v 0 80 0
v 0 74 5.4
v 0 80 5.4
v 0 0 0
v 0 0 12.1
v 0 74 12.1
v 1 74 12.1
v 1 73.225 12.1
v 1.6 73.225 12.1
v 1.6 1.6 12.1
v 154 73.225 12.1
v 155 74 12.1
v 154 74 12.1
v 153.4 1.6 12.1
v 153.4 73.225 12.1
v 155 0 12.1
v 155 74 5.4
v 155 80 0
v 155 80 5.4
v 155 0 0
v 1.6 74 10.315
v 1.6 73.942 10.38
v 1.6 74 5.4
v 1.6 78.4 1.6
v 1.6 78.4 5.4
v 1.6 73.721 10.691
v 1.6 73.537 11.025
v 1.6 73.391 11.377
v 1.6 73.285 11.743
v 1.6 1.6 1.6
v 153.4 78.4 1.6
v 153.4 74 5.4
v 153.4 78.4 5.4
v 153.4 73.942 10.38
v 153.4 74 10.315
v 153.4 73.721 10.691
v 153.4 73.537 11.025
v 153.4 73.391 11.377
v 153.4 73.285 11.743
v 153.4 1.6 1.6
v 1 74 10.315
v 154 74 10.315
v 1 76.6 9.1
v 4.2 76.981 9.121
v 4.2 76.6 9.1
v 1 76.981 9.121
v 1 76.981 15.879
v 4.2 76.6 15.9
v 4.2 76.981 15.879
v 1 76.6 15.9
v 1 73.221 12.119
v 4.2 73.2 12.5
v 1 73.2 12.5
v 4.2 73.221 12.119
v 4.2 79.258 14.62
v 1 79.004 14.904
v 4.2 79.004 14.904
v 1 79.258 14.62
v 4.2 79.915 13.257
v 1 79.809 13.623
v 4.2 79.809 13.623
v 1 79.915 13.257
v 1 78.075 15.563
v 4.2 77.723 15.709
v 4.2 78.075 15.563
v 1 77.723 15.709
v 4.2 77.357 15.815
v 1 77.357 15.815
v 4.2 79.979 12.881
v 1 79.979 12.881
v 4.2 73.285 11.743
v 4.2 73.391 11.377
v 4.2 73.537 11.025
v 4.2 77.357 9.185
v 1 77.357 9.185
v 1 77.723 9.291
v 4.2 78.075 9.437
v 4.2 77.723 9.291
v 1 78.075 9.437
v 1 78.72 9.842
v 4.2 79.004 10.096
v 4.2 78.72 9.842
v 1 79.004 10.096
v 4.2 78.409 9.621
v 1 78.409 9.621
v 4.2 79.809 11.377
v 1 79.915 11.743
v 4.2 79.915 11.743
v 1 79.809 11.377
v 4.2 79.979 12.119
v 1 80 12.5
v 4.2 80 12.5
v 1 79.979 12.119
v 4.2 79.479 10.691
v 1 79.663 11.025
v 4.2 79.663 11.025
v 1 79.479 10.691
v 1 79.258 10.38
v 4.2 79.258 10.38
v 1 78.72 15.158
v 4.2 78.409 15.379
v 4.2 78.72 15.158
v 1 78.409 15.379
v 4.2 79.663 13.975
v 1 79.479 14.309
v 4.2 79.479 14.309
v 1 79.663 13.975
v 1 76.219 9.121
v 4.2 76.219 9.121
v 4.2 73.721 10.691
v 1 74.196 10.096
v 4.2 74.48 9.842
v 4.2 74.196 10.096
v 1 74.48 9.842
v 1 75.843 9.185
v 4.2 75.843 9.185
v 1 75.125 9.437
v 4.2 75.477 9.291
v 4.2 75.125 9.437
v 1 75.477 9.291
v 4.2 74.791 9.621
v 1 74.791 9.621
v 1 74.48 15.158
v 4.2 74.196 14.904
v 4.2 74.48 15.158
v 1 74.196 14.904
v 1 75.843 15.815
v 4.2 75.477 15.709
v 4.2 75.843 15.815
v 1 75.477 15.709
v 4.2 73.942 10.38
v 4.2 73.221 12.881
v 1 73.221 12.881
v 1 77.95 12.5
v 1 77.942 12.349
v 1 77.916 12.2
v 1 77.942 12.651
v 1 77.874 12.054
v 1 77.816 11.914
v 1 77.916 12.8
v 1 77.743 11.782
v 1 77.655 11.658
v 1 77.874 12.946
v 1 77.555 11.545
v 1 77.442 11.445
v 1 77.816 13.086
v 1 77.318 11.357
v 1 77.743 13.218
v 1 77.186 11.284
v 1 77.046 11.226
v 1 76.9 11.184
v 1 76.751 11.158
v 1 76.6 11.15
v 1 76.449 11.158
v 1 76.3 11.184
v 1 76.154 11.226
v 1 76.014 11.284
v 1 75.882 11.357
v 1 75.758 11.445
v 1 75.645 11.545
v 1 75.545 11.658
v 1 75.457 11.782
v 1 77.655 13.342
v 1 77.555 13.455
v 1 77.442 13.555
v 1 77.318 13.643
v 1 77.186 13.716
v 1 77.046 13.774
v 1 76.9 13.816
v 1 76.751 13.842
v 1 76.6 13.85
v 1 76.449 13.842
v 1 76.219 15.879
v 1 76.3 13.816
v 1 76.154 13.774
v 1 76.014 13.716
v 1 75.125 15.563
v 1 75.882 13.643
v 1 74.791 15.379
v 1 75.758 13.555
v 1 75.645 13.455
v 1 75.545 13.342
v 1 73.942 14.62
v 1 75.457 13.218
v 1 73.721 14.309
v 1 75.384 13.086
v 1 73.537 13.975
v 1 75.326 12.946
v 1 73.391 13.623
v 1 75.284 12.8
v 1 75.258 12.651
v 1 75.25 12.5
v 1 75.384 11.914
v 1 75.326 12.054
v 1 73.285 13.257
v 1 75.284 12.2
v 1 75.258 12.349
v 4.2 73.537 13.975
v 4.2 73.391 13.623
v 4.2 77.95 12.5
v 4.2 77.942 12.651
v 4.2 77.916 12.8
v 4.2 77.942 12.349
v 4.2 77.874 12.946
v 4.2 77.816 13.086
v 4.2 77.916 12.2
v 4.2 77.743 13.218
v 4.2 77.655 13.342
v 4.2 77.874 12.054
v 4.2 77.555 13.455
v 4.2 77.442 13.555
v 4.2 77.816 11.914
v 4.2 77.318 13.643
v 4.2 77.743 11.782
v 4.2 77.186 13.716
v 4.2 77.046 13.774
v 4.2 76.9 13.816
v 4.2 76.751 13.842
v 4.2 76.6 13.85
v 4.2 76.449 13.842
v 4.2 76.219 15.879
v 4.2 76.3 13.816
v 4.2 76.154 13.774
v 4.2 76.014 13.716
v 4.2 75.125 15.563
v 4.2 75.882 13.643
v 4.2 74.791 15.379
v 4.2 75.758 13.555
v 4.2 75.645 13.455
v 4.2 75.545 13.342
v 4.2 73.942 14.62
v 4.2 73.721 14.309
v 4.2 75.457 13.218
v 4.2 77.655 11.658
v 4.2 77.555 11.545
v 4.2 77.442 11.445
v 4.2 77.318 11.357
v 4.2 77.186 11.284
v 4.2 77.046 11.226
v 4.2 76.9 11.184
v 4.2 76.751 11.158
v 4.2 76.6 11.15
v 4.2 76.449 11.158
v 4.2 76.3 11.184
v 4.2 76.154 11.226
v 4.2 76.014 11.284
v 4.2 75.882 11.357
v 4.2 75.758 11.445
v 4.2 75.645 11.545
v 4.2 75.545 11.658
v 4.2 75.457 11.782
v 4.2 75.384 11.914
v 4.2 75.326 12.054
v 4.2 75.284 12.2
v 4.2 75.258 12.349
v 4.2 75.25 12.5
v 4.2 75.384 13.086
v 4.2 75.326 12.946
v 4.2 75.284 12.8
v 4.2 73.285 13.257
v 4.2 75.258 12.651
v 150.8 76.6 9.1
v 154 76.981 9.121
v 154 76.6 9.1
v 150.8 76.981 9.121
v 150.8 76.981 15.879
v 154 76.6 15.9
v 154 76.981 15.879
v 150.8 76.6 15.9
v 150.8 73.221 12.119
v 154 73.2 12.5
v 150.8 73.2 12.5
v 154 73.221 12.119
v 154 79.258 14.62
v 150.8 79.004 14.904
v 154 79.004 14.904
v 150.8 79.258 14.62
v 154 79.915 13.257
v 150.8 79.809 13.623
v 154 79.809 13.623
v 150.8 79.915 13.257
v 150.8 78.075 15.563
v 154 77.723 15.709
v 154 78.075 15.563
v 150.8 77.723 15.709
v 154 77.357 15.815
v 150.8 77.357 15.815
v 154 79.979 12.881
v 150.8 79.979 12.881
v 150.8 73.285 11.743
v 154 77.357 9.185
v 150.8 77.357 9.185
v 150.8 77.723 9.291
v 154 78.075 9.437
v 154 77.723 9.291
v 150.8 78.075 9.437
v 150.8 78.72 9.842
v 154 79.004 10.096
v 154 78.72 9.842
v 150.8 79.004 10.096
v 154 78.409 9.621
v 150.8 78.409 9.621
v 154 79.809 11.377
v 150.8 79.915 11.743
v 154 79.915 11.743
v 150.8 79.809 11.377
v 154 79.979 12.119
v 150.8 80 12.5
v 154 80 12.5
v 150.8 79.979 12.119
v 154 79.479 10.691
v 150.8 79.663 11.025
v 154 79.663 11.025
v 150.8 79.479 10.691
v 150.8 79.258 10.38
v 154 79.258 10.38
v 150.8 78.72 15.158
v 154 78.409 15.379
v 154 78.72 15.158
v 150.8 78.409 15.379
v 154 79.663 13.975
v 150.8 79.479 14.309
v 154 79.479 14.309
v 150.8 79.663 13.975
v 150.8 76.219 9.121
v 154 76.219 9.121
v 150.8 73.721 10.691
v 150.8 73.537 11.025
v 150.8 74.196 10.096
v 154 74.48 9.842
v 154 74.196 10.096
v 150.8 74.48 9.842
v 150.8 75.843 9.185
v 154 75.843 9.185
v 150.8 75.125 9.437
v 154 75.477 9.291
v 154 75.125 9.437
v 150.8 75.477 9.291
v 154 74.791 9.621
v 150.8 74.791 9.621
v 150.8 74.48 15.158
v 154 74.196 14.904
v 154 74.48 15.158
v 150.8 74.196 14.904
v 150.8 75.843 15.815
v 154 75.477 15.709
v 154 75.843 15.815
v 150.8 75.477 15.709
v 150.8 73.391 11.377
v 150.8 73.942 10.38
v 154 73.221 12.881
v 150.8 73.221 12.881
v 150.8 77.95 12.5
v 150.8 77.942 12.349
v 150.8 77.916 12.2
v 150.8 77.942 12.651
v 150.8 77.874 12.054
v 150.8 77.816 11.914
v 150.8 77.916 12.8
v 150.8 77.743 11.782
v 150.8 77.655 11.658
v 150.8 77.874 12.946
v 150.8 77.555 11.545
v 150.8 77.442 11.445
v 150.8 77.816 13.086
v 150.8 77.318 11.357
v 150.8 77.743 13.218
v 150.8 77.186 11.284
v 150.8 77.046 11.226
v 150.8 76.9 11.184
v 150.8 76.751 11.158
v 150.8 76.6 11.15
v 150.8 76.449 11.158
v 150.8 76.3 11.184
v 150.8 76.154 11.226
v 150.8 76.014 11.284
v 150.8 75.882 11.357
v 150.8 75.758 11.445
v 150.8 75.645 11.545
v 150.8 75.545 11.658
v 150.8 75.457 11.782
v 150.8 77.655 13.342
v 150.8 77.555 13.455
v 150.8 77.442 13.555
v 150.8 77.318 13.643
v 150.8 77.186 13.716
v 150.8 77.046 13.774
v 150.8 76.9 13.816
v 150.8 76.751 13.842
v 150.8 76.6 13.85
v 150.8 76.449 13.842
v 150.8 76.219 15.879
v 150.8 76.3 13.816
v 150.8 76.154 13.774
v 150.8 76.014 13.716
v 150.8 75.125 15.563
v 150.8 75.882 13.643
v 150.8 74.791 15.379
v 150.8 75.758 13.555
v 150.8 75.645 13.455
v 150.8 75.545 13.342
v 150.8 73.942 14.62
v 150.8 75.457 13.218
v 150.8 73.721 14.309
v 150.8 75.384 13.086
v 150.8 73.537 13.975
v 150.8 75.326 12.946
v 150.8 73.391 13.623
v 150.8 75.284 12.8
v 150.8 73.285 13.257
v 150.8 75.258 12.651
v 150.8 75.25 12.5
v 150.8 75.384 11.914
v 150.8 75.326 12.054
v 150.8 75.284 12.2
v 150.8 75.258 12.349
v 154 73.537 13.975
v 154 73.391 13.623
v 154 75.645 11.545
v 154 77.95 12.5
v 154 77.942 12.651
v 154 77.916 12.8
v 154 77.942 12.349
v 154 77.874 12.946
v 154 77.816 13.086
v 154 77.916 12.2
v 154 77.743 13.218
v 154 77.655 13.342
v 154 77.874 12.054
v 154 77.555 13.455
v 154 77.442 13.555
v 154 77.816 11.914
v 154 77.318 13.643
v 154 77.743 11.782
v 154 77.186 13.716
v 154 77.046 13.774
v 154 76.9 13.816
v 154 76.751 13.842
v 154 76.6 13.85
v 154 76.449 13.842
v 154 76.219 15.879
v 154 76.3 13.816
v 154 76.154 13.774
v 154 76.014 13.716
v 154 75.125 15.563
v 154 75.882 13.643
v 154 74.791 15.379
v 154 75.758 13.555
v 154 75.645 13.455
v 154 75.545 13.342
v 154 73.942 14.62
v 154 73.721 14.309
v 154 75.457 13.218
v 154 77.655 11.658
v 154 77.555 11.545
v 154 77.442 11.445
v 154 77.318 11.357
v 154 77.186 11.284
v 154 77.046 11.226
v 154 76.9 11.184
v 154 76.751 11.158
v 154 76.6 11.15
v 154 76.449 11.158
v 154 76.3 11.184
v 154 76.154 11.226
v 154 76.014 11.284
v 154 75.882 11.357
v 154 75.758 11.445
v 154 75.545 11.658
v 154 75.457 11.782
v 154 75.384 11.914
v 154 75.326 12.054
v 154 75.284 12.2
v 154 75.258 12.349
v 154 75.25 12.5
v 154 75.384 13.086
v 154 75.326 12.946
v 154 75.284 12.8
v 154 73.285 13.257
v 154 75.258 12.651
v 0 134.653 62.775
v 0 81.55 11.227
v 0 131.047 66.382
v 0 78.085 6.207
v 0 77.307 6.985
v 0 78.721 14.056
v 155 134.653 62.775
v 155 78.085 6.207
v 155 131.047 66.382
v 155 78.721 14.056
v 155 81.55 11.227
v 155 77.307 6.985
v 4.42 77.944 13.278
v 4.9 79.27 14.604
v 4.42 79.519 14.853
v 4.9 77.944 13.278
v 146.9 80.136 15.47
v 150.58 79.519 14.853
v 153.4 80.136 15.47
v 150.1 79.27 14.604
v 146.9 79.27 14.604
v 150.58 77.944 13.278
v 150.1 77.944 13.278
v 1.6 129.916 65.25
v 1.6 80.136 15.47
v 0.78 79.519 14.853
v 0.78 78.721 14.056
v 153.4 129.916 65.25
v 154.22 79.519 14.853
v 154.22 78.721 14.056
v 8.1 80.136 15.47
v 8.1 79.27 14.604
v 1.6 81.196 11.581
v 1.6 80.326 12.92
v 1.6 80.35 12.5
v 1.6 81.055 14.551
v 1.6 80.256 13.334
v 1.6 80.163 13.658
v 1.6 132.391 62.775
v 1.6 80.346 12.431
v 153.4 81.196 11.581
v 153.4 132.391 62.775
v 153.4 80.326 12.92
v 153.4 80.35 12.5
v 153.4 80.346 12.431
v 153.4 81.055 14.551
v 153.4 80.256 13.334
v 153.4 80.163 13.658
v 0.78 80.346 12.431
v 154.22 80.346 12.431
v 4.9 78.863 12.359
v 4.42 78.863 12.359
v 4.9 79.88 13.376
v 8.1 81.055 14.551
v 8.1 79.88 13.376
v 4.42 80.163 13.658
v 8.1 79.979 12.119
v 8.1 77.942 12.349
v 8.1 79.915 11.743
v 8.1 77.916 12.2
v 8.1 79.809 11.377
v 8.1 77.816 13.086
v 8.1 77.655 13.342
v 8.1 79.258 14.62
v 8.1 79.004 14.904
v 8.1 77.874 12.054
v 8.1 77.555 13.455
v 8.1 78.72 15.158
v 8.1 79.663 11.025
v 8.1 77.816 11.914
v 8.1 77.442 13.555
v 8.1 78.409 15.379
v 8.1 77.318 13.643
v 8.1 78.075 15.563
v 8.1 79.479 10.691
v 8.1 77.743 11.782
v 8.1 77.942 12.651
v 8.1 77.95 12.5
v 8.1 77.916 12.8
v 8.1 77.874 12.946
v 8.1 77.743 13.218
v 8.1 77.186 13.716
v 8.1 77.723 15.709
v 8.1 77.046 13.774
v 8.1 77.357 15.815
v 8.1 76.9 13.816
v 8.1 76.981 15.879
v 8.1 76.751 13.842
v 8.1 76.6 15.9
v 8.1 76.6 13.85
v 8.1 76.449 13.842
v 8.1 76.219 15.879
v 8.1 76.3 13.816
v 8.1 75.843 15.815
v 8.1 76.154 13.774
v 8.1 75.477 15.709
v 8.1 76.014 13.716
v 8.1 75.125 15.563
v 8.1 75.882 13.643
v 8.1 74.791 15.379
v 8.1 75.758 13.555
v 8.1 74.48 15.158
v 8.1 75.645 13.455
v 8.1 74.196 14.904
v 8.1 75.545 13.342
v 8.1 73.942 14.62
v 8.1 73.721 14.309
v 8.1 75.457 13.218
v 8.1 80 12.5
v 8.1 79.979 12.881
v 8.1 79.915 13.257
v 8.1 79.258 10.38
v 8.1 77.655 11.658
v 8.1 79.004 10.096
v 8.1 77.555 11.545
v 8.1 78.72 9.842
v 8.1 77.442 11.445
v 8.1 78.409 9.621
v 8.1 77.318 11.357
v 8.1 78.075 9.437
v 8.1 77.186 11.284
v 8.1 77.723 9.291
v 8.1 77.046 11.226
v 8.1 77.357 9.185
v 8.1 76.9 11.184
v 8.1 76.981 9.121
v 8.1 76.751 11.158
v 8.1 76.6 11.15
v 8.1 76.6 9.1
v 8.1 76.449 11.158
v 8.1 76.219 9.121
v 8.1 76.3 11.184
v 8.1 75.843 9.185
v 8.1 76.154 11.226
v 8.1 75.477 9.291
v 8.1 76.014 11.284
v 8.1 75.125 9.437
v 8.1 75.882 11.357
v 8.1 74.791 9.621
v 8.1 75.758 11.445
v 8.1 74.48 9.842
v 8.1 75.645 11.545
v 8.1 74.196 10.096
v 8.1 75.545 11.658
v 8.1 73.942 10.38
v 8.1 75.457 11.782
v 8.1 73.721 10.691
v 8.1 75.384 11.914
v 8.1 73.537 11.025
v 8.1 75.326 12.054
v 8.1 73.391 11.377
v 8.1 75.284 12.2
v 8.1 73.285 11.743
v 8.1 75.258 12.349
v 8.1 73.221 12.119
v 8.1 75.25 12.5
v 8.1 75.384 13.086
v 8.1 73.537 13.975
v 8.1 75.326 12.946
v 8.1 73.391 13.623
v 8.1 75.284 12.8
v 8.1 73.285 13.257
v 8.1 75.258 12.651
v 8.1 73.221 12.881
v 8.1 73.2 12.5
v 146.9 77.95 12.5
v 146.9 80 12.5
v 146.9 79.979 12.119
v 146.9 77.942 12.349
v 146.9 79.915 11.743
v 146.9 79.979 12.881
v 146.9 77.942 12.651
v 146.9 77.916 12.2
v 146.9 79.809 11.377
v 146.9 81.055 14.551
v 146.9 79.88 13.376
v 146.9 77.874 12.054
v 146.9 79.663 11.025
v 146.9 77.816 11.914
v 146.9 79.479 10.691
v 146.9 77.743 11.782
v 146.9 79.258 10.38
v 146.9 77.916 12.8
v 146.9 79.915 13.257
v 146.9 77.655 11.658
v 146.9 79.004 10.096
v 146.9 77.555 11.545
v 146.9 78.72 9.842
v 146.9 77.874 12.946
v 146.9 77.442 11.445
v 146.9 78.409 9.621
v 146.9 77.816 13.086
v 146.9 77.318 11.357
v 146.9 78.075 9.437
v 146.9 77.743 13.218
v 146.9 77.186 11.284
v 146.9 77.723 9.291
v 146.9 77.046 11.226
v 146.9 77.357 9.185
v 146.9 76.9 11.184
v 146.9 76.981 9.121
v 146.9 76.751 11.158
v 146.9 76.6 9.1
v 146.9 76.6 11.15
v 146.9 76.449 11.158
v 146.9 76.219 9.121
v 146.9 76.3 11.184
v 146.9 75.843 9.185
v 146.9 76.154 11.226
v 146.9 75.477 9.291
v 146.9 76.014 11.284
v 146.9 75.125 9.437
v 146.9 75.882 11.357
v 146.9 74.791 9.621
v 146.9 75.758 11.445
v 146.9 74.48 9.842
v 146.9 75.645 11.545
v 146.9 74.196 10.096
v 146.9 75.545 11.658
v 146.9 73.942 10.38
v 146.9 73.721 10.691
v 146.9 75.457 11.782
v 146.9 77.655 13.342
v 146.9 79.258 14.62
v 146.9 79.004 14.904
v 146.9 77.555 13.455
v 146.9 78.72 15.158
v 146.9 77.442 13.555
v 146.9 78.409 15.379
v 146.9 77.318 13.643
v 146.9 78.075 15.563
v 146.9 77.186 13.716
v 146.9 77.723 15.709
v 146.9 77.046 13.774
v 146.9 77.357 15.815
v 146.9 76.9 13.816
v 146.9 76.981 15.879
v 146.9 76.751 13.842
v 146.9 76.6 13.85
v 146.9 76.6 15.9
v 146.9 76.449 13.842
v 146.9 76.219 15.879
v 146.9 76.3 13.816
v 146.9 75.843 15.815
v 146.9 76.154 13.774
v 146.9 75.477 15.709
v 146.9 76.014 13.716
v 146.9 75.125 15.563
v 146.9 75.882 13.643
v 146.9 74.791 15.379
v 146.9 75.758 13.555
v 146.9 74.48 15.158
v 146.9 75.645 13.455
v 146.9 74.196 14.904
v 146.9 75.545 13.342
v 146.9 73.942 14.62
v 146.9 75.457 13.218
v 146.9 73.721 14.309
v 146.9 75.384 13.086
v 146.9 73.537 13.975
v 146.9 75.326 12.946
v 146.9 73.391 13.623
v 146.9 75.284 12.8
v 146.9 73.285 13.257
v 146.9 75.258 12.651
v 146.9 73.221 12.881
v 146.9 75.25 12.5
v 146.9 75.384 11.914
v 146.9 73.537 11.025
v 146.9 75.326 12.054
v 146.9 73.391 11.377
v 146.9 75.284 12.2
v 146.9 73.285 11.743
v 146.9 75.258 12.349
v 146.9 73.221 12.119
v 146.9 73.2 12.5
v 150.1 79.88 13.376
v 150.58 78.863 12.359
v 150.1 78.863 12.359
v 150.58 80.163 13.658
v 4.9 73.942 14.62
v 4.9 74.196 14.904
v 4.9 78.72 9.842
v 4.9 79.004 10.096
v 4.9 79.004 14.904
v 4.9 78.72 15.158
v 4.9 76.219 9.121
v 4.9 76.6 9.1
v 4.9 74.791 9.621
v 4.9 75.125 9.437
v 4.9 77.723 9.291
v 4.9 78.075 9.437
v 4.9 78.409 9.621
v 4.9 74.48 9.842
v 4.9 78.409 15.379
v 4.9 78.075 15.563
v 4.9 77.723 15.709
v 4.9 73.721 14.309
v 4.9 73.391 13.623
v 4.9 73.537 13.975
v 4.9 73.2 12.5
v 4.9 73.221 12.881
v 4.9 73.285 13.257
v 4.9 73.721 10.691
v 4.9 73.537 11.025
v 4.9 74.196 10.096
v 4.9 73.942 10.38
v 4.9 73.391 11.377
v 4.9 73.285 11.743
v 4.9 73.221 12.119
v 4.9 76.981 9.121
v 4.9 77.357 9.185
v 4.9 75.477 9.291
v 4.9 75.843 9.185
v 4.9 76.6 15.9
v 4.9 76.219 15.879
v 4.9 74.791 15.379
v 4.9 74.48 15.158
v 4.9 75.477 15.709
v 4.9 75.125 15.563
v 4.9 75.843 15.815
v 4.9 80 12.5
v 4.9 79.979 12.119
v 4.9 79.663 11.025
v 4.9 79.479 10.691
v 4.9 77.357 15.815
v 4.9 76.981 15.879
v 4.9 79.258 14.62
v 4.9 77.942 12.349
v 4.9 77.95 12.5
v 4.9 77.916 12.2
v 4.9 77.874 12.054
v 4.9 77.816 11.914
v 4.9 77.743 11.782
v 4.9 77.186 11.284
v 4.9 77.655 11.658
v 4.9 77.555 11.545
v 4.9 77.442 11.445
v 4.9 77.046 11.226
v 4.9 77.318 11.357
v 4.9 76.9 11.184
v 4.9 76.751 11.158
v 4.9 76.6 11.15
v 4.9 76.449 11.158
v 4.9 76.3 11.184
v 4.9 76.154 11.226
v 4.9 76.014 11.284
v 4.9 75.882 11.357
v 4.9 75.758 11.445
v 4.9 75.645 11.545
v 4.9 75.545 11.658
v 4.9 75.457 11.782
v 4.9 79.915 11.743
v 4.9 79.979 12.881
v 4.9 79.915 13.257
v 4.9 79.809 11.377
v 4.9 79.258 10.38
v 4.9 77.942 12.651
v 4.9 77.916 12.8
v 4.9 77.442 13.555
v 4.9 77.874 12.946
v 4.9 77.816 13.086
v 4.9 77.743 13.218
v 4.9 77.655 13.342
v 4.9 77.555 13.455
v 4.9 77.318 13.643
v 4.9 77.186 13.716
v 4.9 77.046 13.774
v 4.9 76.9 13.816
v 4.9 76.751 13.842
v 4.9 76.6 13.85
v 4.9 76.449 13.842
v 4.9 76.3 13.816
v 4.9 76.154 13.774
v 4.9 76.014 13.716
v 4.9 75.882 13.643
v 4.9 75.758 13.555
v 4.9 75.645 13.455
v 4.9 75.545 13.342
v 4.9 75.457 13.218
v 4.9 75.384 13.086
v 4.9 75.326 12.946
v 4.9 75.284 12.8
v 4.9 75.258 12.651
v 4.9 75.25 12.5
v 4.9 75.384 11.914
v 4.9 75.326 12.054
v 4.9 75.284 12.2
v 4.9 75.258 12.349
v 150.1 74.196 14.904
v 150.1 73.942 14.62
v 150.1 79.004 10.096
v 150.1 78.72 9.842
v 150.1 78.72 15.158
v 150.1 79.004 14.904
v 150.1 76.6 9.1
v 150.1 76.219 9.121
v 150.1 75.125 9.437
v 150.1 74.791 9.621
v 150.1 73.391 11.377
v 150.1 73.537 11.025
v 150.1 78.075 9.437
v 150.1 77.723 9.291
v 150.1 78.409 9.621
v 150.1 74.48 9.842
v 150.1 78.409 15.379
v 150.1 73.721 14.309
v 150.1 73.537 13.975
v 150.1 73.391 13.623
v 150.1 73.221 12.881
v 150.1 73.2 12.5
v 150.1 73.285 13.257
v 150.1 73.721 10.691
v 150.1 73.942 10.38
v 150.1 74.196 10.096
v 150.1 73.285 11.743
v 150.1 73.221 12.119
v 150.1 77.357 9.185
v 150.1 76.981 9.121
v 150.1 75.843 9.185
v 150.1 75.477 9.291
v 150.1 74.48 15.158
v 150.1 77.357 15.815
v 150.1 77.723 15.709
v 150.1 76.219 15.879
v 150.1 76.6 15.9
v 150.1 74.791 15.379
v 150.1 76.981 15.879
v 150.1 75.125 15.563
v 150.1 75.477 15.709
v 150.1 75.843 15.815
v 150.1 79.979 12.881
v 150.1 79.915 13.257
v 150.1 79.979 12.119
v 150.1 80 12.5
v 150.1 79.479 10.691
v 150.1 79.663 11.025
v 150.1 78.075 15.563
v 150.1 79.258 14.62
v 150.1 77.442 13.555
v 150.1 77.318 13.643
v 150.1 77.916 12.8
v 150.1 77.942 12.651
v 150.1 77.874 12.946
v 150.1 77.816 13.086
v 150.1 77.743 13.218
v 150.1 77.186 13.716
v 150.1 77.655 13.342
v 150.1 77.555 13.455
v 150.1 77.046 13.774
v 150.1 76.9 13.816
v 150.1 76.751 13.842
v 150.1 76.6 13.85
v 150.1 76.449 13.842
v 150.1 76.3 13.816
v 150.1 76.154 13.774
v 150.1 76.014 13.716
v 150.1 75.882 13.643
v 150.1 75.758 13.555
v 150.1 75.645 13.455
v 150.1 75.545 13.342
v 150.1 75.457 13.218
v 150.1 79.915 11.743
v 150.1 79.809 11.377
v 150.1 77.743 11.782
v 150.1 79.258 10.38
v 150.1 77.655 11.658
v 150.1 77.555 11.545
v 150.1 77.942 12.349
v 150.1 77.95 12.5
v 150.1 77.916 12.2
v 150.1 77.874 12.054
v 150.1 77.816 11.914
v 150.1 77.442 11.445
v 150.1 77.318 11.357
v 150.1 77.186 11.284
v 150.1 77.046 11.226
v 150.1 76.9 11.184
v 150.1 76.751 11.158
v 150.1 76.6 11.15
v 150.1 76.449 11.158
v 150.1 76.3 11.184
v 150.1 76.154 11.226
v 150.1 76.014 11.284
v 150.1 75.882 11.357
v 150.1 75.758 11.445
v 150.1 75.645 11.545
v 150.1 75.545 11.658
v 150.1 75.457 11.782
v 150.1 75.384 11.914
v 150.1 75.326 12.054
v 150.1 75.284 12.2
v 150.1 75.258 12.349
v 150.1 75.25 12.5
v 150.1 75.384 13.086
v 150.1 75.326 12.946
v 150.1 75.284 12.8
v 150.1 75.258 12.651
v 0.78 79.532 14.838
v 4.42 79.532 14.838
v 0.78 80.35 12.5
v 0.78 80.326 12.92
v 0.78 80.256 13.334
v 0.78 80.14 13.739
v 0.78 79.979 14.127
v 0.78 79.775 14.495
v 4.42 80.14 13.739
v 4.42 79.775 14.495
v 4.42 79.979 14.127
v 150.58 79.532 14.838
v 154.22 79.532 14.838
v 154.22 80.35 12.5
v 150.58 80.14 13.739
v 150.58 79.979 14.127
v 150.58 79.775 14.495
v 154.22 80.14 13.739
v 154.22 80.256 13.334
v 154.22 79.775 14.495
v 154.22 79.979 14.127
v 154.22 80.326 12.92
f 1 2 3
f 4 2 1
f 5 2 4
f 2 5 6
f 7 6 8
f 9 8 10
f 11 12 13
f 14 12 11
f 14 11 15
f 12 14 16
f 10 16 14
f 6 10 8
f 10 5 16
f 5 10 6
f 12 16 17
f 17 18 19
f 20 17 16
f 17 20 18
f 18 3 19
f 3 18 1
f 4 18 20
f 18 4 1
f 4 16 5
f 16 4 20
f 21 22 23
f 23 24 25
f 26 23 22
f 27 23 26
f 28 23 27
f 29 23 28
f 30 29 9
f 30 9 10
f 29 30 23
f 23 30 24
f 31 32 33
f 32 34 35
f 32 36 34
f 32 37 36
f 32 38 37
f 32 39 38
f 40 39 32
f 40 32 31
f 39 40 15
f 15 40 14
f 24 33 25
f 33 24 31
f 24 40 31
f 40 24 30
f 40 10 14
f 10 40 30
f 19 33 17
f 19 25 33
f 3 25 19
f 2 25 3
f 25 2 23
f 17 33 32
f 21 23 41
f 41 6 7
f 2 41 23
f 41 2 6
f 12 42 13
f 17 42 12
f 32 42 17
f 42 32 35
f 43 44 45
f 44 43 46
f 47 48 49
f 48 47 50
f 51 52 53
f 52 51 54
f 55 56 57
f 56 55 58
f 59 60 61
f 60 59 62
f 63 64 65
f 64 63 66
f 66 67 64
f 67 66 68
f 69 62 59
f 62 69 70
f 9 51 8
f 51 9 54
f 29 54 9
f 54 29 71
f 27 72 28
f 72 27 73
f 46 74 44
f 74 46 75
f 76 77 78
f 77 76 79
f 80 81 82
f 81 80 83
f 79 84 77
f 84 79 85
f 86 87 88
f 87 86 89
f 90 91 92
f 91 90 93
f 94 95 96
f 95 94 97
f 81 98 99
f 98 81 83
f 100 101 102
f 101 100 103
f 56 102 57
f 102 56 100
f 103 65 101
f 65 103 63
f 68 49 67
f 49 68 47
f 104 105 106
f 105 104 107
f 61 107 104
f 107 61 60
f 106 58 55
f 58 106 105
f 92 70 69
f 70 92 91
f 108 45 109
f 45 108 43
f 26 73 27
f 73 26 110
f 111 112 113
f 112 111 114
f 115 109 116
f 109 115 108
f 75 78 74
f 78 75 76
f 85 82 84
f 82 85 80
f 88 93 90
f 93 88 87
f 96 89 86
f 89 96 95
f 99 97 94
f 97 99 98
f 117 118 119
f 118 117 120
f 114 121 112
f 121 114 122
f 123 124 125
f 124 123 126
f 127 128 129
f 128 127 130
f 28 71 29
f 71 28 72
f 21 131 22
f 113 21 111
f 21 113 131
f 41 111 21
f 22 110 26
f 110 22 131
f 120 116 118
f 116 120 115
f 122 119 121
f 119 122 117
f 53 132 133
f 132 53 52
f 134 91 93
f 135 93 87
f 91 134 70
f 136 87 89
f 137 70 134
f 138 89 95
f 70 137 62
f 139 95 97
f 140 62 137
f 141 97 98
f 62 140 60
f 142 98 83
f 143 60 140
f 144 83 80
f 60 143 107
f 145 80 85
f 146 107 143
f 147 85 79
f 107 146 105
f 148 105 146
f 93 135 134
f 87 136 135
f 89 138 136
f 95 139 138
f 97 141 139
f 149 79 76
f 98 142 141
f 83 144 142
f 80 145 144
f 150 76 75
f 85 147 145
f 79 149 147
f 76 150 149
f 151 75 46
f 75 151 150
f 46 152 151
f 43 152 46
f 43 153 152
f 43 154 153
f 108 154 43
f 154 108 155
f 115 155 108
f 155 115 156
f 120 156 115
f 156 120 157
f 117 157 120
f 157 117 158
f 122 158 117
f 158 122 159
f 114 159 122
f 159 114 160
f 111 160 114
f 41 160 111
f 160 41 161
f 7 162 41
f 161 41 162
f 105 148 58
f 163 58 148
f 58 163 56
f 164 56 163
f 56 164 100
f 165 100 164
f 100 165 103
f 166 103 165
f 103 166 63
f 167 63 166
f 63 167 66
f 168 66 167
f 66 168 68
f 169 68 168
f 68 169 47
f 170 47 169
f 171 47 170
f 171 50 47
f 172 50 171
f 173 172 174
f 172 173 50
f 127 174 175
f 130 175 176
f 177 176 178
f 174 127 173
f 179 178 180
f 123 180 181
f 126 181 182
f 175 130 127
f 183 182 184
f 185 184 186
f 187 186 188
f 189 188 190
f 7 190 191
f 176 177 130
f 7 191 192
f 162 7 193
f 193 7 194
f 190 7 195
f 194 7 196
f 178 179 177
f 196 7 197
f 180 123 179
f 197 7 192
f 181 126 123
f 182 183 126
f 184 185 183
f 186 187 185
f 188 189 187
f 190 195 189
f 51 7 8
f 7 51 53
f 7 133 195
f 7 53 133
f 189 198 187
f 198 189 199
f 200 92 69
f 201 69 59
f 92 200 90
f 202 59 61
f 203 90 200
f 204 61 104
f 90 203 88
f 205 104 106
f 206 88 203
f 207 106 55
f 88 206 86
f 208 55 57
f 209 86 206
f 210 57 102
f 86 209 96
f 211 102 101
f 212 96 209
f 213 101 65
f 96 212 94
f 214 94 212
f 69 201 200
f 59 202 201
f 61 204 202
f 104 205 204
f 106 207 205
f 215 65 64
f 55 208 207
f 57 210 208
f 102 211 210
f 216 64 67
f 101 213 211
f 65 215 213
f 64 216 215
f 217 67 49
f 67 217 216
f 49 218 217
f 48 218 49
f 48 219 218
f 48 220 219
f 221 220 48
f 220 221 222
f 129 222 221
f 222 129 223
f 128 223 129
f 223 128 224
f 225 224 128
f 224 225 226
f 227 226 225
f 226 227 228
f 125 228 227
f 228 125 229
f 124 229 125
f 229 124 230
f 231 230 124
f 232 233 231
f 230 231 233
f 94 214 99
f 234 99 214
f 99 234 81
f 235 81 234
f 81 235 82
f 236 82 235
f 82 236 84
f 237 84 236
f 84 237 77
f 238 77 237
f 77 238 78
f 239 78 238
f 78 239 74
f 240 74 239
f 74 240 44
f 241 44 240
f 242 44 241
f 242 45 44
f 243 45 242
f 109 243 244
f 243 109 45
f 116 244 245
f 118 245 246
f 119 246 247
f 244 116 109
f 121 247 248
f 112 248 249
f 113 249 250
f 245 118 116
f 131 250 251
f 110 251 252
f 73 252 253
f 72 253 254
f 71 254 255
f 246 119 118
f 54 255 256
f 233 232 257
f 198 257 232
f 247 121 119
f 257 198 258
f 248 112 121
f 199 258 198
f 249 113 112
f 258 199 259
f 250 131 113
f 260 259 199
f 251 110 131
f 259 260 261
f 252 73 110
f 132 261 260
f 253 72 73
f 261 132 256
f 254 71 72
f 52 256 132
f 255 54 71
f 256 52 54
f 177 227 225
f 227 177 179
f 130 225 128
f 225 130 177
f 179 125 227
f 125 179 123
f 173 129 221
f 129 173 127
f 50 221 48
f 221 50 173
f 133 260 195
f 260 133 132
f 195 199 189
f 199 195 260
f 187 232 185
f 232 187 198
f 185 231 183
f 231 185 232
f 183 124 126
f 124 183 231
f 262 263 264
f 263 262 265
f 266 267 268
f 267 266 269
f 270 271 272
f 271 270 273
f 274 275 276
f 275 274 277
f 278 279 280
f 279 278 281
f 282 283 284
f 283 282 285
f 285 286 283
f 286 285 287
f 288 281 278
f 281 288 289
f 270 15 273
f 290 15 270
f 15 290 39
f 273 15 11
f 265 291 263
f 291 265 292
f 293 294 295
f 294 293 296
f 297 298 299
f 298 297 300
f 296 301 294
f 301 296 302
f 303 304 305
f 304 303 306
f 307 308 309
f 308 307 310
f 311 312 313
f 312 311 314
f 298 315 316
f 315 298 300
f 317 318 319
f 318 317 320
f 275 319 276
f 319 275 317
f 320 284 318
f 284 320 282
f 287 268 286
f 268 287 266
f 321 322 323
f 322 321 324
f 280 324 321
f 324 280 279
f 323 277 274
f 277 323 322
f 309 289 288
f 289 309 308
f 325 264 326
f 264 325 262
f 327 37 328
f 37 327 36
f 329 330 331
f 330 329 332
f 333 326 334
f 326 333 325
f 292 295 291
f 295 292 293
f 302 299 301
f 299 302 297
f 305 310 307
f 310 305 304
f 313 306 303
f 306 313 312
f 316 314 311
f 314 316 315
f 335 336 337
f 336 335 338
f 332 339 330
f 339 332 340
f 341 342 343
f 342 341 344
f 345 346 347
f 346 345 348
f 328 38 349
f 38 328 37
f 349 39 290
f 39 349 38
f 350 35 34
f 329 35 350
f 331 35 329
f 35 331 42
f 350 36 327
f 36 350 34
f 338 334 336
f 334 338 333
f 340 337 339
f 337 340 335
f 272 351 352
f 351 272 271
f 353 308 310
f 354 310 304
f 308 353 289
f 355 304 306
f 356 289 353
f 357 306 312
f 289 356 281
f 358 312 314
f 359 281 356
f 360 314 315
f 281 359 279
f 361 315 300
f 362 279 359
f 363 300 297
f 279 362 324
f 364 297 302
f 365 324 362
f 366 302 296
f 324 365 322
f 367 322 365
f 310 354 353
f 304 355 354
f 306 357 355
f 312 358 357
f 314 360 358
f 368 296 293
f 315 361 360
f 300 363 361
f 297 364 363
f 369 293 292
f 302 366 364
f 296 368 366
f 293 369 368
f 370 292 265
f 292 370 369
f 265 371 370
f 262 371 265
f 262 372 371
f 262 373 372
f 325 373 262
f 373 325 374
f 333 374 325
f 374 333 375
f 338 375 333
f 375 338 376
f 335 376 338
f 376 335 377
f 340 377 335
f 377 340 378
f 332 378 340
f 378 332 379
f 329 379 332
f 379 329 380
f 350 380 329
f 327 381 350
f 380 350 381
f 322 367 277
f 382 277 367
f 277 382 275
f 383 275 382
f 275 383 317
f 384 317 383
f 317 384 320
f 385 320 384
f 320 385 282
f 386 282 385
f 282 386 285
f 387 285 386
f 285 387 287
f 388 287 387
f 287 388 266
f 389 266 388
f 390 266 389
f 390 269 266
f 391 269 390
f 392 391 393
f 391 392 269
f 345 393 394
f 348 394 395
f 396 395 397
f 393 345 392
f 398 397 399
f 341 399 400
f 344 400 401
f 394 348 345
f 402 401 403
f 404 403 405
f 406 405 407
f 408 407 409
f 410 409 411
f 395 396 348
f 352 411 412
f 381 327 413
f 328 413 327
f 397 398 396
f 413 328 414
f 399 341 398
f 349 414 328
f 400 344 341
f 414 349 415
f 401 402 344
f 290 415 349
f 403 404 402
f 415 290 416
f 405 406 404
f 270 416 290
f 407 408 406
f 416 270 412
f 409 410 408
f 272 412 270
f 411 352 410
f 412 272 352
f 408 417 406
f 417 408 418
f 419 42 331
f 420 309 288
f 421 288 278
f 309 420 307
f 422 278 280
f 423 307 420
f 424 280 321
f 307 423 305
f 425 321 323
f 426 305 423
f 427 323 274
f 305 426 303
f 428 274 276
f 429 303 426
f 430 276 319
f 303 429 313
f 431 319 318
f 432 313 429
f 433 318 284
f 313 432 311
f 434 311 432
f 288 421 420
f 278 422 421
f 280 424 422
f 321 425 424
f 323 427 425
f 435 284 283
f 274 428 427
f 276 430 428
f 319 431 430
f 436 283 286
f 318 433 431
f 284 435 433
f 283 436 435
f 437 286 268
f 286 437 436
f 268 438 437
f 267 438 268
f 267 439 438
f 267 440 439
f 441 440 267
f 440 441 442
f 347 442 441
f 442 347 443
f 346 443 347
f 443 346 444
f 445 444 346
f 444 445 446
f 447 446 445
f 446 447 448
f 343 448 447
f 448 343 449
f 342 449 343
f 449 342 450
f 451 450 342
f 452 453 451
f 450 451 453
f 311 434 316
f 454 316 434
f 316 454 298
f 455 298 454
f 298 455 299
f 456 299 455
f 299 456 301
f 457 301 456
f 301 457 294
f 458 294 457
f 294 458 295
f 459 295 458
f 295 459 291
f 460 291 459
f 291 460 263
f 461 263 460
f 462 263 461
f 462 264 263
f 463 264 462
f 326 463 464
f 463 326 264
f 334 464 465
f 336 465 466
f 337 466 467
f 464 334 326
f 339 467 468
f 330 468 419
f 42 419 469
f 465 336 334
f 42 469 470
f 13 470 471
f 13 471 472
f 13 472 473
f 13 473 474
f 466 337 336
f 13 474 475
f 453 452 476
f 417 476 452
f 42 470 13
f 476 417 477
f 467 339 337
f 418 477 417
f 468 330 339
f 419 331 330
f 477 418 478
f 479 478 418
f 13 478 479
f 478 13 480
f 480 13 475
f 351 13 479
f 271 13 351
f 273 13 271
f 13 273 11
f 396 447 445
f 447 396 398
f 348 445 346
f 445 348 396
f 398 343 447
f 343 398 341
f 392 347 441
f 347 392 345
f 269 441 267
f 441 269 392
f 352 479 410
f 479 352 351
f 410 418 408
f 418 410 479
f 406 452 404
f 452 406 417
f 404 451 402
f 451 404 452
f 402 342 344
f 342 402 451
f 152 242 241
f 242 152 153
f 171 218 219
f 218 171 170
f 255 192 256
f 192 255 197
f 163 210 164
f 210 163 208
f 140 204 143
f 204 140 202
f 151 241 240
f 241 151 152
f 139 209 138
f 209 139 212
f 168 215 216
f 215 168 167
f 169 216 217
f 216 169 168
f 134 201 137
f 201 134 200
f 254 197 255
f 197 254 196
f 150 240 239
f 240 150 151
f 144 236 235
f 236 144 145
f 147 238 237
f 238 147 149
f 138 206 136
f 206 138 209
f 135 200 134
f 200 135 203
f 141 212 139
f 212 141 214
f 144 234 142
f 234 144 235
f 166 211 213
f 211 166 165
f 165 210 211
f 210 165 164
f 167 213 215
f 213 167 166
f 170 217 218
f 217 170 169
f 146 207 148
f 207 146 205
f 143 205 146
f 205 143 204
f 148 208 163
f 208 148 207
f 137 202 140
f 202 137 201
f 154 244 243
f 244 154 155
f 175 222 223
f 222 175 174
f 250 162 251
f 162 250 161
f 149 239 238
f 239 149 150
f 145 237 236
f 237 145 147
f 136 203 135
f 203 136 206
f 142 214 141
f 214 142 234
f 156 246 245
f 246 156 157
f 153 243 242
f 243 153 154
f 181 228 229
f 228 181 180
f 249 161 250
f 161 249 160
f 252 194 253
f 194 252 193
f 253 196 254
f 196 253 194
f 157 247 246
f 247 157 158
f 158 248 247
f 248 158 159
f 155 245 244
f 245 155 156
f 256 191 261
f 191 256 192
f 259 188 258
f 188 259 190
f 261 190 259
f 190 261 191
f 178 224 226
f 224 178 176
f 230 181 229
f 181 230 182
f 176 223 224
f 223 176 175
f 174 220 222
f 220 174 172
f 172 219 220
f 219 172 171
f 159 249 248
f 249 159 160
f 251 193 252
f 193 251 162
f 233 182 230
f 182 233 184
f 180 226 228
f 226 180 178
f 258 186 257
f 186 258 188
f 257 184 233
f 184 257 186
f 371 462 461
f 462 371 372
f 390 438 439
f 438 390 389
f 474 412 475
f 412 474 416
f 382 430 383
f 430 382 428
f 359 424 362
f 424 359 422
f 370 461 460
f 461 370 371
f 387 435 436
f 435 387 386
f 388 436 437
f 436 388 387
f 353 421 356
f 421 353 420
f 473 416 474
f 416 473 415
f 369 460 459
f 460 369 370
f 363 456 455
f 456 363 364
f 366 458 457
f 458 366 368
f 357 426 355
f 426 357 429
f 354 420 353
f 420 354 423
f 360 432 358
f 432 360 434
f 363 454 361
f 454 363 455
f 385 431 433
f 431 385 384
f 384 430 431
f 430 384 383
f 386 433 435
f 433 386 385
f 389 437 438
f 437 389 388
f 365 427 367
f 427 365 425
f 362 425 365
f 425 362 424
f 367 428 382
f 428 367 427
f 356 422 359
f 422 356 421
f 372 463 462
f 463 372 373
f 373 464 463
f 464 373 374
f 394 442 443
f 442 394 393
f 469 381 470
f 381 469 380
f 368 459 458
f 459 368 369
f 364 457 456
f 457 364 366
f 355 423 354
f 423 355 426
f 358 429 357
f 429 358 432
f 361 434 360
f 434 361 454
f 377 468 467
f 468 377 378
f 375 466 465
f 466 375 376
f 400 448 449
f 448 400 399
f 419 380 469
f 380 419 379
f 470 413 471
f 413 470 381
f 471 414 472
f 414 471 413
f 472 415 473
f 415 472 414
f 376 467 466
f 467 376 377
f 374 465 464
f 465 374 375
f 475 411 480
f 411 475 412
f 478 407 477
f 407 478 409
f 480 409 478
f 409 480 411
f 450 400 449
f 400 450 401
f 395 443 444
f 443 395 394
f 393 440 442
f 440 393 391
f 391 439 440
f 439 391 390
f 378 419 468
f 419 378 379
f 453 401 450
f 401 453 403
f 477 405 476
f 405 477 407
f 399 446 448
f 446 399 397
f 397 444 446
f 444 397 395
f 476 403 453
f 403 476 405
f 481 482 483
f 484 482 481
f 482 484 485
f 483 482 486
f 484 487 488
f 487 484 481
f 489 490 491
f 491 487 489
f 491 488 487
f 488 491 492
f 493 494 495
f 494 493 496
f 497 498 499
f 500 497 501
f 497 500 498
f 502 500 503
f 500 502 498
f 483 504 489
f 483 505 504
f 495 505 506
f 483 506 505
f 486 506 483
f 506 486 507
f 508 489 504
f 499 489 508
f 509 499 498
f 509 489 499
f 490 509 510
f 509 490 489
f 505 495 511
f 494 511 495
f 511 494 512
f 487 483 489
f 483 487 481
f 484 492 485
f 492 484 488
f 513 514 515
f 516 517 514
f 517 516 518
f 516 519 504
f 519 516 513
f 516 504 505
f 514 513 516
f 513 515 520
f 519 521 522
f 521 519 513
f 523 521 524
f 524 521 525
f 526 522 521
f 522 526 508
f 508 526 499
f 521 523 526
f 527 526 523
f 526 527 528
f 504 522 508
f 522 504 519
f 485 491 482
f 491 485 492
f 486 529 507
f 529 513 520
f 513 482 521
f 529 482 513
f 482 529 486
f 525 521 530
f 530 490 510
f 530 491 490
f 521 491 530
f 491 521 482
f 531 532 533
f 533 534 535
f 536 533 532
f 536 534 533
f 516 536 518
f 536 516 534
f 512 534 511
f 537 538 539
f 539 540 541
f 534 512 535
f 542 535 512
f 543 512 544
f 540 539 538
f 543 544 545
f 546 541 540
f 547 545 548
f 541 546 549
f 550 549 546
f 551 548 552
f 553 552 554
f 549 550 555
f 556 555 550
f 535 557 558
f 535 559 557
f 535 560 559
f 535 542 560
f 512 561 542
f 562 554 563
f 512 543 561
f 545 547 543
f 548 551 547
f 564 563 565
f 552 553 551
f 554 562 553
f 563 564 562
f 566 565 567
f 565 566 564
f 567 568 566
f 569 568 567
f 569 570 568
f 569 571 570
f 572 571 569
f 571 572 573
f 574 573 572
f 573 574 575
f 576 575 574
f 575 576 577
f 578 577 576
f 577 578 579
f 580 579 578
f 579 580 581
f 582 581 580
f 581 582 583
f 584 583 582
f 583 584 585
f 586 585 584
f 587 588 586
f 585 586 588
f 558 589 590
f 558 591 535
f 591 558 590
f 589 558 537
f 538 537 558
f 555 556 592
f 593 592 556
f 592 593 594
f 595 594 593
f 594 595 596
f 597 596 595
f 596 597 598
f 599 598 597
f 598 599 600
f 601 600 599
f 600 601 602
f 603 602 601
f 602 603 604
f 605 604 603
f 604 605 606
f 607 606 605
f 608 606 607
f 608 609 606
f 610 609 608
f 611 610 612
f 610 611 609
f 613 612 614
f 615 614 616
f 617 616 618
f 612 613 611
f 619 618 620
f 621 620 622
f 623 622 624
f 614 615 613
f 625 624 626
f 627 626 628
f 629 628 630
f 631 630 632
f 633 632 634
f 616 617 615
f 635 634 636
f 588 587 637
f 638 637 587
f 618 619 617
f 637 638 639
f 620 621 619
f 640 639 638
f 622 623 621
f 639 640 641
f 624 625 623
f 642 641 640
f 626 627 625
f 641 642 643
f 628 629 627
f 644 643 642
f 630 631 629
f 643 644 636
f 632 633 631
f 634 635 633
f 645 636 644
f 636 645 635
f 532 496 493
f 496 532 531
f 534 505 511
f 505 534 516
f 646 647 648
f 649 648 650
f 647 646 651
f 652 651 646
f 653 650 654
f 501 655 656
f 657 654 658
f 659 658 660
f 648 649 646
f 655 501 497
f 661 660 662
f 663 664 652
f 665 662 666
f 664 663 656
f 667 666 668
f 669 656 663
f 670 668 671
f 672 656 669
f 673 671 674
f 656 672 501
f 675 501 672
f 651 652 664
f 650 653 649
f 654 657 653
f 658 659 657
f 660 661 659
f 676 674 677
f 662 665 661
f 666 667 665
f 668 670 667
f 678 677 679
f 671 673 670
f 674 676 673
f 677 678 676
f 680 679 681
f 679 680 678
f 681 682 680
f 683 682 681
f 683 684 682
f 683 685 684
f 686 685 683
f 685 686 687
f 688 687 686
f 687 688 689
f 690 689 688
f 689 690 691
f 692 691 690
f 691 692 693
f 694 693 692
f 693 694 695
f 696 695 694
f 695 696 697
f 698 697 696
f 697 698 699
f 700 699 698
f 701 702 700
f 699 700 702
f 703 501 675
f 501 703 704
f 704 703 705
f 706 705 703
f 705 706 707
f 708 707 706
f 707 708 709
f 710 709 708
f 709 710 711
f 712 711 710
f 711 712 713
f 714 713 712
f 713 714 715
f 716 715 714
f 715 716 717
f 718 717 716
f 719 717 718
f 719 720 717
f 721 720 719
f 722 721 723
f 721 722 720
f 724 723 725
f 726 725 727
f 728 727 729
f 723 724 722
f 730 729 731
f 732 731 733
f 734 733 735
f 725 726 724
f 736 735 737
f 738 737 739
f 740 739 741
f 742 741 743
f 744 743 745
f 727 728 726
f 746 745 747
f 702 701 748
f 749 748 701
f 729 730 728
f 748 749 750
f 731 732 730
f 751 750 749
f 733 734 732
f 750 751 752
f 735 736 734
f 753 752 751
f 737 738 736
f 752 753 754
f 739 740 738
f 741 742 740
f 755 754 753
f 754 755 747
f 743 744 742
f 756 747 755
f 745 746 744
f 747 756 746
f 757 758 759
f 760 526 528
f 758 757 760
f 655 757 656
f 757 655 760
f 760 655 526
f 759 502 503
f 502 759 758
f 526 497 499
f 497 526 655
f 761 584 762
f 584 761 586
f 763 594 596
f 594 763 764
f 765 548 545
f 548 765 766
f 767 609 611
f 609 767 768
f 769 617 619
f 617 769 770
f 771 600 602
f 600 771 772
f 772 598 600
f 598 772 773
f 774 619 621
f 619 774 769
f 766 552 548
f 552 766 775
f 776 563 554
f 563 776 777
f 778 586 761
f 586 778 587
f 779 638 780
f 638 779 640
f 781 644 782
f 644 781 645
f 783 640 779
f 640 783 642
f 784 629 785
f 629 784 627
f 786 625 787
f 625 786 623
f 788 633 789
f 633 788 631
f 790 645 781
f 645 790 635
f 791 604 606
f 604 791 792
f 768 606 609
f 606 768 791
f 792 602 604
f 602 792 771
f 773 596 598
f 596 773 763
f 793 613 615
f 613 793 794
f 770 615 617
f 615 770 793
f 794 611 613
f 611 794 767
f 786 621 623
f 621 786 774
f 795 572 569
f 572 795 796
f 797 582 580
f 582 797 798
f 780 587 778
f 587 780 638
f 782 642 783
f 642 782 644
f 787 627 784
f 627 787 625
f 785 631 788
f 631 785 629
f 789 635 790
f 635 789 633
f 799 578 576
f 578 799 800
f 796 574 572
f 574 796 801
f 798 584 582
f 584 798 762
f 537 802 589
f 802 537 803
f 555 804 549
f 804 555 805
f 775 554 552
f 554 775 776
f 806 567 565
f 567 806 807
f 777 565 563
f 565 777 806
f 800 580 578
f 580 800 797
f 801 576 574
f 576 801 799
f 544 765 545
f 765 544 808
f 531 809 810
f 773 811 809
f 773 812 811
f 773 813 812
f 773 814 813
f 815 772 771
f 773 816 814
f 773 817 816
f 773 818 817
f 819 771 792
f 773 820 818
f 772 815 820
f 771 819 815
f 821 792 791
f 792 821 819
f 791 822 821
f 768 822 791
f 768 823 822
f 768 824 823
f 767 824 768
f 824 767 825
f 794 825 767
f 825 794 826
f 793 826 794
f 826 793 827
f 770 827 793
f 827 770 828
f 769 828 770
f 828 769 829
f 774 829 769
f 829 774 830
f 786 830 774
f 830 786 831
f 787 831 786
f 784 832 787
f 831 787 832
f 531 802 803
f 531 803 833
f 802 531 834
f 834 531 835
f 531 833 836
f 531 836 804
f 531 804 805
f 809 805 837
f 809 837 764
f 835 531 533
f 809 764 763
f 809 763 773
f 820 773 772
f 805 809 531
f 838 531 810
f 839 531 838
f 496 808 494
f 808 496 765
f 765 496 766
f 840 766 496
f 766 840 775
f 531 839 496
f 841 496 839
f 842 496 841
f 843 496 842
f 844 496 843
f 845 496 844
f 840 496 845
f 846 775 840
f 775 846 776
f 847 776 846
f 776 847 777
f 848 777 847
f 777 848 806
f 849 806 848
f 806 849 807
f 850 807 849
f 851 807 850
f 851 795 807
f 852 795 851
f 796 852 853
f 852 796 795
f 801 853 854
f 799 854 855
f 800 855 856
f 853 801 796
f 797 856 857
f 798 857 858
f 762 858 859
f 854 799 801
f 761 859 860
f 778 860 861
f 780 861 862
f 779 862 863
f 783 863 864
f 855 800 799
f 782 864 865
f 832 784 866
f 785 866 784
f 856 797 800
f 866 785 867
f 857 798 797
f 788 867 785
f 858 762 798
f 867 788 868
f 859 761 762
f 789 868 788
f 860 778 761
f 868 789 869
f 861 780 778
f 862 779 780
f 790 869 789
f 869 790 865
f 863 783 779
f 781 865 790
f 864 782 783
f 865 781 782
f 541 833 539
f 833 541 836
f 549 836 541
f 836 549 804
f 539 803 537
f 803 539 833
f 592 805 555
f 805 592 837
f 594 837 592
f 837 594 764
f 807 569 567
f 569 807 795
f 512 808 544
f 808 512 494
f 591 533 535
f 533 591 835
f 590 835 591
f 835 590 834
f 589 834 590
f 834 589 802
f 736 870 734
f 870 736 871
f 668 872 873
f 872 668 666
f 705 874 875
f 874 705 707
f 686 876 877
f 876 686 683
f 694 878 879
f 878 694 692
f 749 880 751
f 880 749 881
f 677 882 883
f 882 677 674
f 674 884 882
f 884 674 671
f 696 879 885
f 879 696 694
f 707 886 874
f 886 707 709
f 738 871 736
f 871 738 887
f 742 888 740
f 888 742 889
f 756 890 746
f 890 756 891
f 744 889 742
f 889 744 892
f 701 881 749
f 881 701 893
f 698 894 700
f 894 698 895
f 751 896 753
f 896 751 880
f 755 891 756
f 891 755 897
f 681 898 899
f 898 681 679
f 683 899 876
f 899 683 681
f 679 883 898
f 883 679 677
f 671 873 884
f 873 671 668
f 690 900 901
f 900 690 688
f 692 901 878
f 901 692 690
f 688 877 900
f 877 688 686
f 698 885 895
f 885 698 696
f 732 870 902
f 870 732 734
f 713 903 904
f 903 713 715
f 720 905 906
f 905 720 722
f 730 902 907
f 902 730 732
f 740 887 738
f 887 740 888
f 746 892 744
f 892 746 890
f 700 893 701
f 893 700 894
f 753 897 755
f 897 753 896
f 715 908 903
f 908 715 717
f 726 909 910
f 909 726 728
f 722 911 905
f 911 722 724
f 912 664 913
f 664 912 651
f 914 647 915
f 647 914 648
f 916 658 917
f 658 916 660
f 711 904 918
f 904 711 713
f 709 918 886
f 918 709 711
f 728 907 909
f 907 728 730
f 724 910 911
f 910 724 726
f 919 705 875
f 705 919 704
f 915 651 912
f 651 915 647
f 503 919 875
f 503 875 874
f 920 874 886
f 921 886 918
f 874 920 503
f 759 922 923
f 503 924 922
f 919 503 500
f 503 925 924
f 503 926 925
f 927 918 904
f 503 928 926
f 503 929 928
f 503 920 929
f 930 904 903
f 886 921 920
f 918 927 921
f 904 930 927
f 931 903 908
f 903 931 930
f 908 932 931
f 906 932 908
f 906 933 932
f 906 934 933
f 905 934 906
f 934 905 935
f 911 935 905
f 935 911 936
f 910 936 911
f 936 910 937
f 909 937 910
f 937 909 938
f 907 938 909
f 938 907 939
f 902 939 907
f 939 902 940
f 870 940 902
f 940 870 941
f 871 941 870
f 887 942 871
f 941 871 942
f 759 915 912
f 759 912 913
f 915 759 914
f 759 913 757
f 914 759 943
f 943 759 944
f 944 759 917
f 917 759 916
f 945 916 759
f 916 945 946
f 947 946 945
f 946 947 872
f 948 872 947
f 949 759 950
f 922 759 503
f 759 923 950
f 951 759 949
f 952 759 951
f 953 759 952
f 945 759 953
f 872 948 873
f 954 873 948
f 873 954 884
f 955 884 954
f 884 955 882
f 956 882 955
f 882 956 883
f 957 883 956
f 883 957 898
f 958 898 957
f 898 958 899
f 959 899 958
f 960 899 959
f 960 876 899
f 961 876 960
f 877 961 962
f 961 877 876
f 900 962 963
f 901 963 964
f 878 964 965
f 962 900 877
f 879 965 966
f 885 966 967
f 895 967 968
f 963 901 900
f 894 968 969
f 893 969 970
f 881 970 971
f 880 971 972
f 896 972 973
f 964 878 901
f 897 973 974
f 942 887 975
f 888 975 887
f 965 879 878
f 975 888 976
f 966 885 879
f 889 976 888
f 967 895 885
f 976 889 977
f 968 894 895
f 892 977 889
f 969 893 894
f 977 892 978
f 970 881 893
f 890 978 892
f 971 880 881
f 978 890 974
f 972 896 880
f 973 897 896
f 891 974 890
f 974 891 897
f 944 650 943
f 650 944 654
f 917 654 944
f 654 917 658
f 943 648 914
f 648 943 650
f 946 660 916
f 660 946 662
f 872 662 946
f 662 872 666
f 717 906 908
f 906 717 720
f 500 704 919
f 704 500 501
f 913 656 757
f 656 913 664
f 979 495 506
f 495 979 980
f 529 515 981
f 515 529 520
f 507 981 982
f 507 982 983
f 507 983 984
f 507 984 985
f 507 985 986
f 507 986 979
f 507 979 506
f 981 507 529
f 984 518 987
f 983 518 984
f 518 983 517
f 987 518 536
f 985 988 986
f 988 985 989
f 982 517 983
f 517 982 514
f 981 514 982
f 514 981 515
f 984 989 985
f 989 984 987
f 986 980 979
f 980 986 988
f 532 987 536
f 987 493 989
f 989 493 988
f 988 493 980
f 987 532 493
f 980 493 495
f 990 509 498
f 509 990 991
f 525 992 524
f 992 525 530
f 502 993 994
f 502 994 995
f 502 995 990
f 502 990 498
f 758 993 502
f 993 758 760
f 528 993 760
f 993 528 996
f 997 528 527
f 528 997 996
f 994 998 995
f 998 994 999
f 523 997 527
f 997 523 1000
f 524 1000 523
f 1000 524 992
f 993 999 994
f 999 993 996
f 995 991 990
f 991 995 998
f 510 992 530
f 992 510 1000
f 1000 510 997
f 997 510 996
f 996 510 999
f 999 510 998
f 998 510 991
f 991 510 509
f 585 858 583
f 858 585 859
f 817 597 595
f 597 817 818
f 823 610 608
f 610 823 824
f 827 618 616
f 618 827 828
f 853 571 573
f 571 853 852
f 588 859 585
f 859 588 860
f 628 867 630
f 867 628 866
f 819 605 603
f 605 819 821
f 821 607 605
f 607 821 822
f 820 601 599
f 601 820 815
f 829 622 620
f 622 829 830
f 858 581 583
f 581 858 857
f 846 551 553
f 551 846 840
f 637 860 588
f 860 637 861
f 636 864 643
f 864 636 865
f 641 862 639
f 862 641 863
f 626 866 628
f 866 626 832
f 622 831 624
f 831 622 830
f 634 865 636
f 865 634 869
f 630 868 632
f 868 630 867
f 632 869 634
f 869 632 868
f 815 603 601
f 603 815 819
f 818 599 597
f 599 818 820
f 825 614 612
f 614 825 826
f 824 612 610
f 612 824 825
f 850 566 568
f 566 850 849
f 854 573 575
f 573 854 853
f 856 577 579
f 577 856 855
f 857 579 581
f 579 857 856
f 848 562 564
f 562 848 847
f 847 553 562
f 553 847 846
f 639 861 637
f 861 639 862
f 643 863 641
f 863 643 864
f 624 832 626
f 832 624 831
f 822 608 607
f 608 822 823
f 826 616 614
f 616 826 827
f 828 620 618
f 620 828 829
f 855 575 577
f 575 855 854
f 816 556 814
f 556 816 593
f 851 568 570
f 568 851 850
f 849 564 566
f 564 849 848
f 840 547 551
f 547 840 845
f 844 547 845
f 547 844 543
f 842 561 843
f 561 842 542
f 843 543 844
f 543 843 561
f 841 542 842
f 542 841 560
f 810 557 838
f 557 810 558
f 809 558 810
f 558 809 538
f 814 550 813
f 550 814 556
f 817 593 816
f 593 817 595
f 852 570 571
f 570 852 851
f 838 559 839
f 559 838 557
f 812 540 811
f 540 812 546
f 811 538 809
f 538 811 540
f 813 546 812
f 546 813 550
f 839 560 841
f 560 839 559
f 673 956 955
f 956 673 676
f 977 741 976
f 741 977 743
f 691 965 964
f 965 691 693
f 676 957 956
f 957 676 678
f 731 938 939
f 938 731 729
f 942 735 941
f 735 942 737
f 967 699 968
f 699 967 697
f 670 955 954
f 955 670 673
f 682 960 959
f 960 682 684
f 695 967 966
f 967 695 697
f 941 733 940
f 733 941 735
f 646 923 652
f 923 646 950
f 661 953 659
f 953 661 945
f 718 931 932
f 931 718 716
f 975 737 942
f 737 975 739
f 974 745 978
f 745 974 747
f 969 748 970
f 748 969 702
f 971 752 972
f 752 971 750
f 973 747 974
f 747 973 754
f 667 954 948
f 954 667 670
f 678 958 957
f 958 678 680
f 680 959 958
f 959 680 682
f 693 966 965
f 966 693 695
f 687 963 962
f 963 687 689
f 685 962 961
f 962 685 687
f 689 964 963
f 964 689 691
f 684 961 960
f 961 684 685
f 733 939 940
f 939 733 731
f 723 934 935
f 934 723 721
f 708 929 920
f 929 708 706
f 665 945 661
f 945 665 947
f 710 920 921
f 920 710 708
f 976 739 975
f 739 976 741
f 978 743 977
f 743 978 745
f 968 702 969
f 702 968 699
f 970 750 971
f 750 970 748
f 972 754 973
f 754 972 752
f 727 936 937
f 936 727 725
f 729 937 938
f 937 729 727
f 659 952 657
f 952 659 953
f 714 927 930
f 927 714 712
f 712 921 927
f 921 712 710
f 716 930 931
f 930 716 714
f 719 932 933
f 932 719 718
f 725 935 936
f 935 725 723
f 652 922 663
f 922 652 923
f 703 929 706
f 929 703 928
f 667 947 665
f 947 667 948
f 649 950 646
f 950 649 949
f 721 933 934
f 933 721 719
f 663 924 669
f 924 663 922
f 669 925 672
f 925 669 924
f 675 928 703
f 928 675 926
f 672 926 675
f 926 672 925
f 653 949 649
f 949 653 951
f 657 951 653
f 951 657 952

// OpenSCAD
// file: lid_shell.scad
// Native Mecha-Splicer side-pin hinge. CAD ONLY; no metal pin, no verified flex/stop/torque.
// Hinge is fully enclosed in the declared closed XY silhouette.
$fn=56;
W=155.0; D=80.0; wall=1.6; floor=1.6;
HBASE=12.1; HLID=5.1; gap=0.8;
hy=76.6; hz=12.5;
kr=3.4; bore=2.7;

module lid_shell() {
  difference() {
    union() {
      difference() {
        translate([0,0,12.9]) cube([W,D,HLID]);
        translate([wall,wall,12.8]) cube([W-2*wall,D-2*wall,HLID-floor+0.1]);
        // Remove the lower rear wall in swing zone (shell only).
        translate([-0.1,74.0,12.8]) cube([W+0.2,6.1,4.1]);
      }
// Anchor ears join the inner lid barrels back to outer side rails.
      translate([1.0,72.0,12.9]) cube([7.1000000000000005,3.1,1.3]);
      translate([146.9,72.0,12.9]) cube([7.1000000000000005,3.1,1.3]);
// The two lid barrels lie axially beside the base barrels.
      translate([4.9,hy,hz]) rotate([0,90,0]) cylinder(h=3.2,r=3.4);
      translate([146.9,hy,hz]) rotate([0,90,0]) cylinder(h=3.2,r=3.4);
    }
// Relieve lid shell material for both base hinge barrels.
    translate([0.78,hy,hz]) rotate([0,90,0]) cylinder(h=3.64,r=3.75);
    translate([150.58,hy,hz]) rotate([0,90,0]) cylinder(h=3.64,r=3.75);
    translate([4.78,hy,hz]) rotate([0,90,0]) cylinder(h=3.4400000000000004,d=bore);
    translate([146.78,hy,hz]) rotate([0,90,0]) cylinder(h=3.4400000000000004,d=bore);
// Upper LCD requires separate signal AND touch flex routes.
    translate([63.5,D-wall-0.1,12.8]) cube([28,wall+0.2,3.6]);
  }
}
lid_shell();
// file: base_shell.scad
// Native Mecha-Splicer side-pin hinge. CAD ONLY; no metal pin, no verified flex/stop/torque.
// Hinge is fully enclosed in the declared closed XY silhouette.
$fn=56;
W=155.0; D=80.0; wall=1.6; floor=1.6;
HBASE=12.1; HLID=5.1; gap=0.8;
hy=76.6; hz=12.5;
kr=3.4; bore=2.7;

module base_shell() {
  difference() {
    union() {
      difference() {
        cube([W,D,HBASE]);
        translate([wall,wall,floor]) cube([W-2*wall,D-2*wall,HBASE+1]);
        // Remove the upper rear wall in swing zone (shell only).
        translate([-0.1,74.0,HBASE-6.7]) cube([W+0.2,6.1,6.9]);
      }
// Side pivot barrels tie into the rear shell wall at both ends.
      translate([1.0,hy,hz]) rotate([0,90,0]) cylinder(h=3.2,r=3.4);
      translate([150.8,hy,hz]) rotate([0,90,0]) cylinder(h=3.2,r=3.4);
    }
// Sculpt relief for the rotating *lid* barrels within the base wall.
    translate([4.680000000000001,hy,hz]) rotate([0,90,0]) cylinder(h=3.64,r=3.75);
    translate([146.68,hy,hz]) rotate([0,90,0]) cylinder(h=3.64,r=3.75);
    translate([0.88,hy,hz]) rotate([0,90,0]) cylinder(h=3.4400000000000004,d=bore);
    translate([150.68,hy,hz]) rotate([0,90,0]) cylinder(h=3.4400000000000004,d=bore);
// Rear center FPC pass-through (bend, EMC and flex cycles NOT VERIFIED).
    translate([63.5,D-wall-0.1,HBASE-3.5]) cube([28,wall+0.2,4.1]);
  }
}
base_shell();
// main file
// Side-pin candidate; lid rotation around internal X axis, not a hardware test.
use <base_shell.scad>
use <lid_shell.scad>
angle_deg=-135.0;hy=76.6;hz=12.5;
color([0.15,0.24,0.31]) base_shell();
color([0.4,0.54,0.63])
translate([0,hy,hz]) rotate([angle_deg,0,0])
  translate([0,-hy,-hz]) lid_shell();
